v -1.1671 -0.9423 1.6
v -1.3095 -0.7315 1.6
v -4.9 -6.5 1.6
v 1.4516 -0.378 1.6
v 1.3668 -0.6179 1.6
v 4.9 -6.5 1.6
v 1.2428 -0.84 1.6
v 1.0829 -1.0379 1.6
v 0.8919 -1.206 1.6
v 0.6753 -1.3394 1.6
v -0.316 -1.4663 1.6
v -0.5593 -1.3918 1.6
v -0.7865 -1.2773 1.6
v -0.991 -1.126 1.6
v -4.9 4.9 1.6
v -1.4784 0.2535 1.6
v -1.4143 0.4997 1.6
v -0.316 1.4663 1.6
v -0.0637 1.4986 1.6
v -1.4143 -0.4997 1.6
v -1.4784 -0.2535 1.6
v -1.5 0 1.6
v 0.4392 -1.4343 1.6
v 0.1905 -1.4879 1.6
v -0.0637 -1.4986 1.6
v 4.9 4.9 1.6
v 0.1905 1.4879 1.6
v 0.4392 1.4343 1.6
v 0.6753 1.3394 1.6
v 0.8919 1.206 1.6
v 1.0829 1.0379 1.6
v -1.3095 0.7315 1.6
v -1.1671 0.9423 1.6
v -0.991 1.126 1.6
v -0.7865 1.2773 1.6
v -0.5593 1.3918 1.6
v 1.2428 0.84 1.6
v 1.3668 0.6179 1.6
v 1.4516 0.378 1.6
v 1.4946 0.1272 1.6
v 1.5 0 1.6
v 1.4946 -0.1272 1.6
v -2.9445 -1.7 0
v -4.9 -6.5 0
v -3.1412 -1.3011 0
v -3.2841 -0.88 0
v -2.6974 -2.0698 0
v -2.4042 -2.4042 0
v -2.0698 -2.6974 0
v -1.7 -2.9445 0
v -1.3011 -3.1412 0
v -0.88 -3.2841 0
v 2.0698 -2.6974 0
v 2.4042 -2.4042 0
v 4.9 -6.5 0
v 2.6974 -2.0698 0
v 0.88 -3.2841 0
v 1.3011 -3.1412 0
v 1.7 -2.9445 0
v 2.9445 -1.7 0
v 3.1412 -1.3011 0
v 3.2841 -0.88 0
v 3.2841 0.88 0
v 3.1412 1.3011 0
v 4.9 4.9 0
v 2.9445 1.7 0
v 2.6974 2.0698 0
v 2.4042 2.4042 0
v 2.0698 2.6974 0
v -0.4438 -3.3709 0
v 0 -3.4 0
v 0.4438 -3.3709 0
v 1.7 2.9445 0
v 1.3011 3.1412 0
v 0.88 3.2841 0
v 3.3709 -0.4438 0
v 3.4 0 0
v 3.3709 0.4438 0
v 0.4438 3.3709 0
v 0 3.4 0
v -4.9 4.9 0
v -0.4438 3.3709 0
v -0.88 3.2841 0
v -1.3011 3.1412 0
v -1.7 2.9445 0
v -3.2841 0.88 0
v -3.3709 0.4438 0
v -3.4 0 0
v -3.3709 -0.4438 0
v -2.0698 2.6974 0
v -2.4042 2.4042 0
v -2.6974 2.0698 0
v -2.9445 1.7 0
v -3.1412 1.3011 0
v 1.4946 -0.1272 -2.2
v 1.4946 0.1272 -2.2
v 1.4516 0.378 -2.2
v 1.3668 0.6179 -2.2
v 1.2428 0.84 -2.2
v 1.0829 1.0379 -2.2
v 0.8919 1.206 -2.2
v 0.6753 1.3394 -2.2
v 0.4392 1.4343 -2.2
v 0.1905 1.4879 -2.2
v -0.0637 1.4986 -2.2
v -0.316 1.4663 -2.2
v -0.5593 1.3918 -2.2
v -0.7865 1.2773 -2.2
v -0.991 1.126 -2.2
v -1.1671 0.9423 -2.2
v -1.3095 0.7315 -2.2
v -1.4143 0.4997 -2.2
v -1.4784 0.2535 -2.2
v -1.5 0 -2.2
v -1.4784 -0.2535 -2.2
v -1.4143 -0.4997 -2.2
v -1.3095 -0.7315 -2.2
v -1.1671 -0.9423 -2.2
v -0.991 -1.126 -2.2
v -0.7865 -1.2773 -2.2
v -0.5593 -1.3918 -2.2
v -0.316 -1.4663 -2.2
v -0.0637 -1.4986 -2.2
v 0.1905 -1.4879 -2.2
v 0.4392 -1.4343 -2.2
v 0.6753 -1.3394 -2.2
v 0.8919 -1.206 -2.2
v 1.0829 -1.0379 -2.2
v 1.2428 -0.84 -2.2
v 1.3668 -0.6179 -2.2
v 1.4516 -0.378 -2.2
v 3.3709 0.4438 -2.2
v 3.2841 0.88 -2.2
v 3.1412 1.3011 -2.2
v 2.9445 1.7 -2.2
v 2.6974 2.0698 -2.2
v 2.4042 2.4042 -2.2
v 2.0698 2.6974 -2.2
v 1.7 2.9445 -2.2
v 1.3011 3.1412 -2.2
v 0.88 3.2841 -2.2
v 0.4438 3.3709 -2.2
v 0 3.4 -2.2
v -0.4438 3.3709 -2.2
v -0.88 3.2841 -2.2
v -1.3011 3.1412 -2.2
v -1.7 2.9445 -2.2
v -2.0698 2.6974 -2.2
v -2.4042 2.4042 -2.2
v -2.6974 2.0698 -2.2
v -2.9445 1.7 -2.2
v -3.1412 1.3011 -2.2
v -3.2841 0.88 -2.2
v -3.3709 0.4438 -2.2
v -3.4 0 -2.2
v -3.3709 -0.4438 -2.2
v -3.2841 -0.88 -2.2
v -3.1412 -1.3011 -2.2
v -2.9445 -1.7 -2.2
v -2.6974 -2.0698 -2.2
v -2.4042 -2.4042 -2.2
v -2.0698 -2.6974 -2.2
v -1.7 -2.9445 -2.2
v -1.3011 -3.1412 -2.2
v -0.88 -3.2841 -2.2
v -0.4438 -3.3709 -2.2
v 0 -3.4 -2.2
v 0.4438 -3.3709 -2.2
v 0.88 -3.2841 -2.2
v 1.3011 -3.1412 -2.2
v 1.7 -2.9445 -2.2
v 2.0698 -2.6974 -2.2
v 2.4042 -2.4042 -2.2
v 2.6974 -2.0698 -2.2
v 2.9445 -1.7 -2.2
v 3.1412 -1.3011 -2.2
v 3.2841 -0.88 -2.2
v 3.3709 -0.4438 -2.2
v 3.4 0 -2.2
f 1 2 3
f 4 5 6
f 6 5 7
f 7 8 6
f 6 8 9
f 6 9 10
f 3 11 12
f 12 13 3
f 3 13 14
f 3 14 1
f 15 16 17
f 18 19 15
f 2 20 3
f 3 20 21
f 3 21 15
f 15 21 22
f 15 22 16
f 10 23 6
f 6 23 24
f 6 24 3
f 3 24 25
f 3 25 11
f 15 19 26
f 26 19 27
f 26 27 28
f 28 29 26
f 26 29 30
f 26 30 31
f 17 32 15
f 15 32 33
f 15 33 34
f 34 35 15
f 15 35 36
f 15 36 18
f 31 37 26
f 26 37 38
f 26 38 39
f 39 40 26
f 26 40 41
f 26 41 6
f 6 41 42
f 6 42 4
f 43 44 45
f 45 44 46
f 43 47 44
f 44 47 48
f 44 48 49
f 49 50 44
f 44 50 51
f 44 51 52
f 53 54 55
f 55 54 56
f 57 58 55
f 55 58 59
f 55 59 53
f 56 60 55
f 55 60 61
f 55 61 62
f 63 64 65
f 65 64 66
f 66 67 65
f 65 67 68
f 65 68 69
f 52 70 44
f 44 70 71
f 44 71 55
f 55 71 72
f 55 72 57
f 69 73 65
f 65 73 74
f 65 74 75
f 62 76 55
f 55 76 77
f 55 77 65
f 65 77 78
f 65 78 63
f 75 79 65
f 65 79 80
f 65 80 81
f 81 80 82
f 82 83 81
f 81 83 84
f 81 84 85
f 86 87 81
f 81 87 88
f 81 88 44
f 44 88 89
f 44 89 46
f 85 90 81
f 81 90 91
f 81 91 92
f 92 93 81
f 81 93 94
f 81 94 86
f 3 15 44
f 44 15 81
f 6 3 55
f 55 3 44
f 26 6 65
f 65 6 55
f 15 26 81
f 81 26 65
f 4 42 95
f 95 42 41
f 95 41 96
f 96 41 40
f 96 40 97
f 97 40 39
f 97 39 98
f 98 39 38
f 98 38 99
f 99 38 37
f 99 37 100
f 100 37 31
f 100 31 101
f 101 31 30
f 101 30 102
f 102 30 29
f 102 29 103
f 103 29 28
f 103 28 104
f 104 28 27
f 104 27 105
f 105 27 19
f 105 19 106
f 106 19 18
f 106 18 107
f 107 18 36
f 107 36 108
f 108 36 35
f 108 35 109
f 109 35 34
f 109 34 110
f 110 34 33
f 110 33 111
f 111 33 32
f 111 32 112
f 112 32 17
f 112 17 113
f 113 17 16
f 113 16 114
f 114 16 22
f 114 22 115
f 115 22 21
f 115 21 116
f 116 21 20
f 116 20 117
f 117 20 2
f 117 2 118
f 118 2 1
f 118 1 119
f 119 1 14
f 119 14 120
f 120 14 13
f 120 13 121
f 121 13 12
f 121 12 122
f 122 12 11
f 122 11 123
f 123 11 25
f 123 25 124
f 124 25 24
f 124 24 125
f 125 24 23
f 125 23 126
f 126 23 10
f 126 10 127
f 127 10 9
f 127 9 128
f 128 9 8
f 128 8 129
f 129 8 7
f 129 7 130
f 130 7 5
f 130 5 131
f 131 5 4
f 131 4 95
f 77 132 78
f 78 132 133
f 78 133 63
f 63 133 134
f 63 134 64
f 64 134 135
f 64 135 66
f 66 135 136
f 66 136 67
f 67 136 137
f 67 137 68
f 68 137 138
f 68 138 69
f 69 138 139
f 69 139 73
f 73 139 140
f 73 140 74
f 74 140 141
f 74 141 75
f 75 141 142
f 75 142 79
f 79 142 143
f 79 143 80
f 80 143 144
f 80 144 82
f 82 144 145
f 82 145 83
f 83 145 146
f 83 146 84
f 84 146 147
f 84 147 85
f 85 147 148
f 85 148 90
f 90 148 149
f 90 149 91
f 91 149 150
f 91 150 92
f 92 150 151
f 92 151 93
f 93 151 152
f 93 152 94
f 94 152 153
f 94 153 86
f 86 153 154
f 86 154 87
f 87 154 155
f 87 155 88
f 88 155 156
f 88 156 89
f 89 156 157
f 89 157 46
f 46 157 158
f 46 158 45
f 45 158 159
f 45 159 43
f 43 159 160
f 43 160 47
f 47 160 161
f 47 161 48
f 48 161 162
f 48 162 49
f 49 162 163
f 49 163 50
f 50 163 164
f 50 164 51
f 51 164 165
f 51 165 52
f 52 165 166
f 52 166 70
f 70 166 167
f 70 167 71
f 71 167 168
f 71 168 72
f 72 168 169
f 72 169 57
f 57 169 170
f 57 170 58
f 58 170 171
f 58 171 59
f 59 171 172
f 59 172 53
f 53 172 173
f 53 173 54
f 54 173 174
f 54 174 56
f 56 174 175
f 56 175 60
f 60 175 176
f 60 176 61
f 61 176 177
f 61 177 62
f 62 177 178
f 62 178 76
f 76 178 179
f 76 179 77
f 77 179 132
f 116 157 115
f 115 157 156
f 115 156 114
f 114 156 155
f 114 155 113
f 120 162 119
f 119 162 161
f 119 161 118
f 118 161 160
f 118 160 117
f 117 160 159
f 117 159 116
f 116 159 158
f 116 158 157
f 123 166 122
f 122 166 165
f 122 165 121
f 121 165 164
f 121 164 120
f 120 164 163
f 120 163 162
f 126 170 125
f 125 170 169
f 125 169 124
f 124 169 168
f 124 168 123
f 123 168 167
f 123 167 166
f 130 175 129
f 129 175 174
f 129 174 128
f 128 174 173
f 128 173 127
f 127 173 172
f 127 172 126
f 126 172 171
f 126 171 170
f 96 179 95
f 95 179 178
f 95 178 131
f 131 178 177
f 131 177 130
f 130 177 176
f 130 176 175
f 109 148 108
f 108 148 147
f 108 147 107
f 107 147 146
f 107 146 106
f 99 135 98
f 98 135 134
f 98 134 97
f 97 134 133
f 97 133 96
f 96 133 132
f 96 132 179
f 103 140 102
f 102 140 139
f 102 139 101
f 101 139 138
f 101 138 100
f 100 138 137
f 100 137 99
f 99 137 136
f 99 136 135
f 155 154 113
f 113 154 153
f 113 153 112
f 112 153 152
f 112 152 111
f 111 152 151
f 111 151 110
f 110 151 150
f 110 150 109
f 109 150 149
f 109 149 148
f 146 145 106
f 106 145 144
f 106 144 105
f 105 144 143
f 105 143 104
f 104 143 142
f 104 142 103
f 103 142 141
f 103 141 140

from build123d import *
from build123d.topology import SkipClean

# Parameters (mm, degrees)
SKETCH1_W           = 9.8
SKETCH1_H           = 11.4
SKETCH1_R           = 1.5
BOSS_EXTRUDE1_DEPTH = 1.6
BOSS_EXTRUDE2_START = 2.2
SKETCH2_R           = 3.4
SKETCH2_R_2         = 1.5
BOSS_EXTRUDE2_DEPTH = 2.2


with BuildPart() as part:
    # Sketch1 → Boss-Extrude1 (new body)
    with BuildSketch(Plane.XY):
        with Locations((0, -0.8)):
            Rectangle(SKETCH1_W, SKETCH1_H)
        Circle(SKETCH1_R, mode=Mode.SUBTRACT)
    extrude(amount=BOSS_EXTRUDE1_DEPTH)

    # Sketch2 → Boss-Extrude2 (add)
    with SkipClean():  # the faces are left unmerged after this step: merging them gives an invalid solid
        with BuildSketch(Plane(origin=(0, 0, 0), x_dir=(-1, 0, 0), z_dir=(0, 0, -1)).offset(BOSS_EXTRUDE2_START)):
            Circle(SKETCH2_R)
            Circle(SKETCH2_R_2, mode=Mode.SUBTRACT)
        extrude(amount=-BOSS_EXTRUDE2_DEPTH)


solid = part.part
